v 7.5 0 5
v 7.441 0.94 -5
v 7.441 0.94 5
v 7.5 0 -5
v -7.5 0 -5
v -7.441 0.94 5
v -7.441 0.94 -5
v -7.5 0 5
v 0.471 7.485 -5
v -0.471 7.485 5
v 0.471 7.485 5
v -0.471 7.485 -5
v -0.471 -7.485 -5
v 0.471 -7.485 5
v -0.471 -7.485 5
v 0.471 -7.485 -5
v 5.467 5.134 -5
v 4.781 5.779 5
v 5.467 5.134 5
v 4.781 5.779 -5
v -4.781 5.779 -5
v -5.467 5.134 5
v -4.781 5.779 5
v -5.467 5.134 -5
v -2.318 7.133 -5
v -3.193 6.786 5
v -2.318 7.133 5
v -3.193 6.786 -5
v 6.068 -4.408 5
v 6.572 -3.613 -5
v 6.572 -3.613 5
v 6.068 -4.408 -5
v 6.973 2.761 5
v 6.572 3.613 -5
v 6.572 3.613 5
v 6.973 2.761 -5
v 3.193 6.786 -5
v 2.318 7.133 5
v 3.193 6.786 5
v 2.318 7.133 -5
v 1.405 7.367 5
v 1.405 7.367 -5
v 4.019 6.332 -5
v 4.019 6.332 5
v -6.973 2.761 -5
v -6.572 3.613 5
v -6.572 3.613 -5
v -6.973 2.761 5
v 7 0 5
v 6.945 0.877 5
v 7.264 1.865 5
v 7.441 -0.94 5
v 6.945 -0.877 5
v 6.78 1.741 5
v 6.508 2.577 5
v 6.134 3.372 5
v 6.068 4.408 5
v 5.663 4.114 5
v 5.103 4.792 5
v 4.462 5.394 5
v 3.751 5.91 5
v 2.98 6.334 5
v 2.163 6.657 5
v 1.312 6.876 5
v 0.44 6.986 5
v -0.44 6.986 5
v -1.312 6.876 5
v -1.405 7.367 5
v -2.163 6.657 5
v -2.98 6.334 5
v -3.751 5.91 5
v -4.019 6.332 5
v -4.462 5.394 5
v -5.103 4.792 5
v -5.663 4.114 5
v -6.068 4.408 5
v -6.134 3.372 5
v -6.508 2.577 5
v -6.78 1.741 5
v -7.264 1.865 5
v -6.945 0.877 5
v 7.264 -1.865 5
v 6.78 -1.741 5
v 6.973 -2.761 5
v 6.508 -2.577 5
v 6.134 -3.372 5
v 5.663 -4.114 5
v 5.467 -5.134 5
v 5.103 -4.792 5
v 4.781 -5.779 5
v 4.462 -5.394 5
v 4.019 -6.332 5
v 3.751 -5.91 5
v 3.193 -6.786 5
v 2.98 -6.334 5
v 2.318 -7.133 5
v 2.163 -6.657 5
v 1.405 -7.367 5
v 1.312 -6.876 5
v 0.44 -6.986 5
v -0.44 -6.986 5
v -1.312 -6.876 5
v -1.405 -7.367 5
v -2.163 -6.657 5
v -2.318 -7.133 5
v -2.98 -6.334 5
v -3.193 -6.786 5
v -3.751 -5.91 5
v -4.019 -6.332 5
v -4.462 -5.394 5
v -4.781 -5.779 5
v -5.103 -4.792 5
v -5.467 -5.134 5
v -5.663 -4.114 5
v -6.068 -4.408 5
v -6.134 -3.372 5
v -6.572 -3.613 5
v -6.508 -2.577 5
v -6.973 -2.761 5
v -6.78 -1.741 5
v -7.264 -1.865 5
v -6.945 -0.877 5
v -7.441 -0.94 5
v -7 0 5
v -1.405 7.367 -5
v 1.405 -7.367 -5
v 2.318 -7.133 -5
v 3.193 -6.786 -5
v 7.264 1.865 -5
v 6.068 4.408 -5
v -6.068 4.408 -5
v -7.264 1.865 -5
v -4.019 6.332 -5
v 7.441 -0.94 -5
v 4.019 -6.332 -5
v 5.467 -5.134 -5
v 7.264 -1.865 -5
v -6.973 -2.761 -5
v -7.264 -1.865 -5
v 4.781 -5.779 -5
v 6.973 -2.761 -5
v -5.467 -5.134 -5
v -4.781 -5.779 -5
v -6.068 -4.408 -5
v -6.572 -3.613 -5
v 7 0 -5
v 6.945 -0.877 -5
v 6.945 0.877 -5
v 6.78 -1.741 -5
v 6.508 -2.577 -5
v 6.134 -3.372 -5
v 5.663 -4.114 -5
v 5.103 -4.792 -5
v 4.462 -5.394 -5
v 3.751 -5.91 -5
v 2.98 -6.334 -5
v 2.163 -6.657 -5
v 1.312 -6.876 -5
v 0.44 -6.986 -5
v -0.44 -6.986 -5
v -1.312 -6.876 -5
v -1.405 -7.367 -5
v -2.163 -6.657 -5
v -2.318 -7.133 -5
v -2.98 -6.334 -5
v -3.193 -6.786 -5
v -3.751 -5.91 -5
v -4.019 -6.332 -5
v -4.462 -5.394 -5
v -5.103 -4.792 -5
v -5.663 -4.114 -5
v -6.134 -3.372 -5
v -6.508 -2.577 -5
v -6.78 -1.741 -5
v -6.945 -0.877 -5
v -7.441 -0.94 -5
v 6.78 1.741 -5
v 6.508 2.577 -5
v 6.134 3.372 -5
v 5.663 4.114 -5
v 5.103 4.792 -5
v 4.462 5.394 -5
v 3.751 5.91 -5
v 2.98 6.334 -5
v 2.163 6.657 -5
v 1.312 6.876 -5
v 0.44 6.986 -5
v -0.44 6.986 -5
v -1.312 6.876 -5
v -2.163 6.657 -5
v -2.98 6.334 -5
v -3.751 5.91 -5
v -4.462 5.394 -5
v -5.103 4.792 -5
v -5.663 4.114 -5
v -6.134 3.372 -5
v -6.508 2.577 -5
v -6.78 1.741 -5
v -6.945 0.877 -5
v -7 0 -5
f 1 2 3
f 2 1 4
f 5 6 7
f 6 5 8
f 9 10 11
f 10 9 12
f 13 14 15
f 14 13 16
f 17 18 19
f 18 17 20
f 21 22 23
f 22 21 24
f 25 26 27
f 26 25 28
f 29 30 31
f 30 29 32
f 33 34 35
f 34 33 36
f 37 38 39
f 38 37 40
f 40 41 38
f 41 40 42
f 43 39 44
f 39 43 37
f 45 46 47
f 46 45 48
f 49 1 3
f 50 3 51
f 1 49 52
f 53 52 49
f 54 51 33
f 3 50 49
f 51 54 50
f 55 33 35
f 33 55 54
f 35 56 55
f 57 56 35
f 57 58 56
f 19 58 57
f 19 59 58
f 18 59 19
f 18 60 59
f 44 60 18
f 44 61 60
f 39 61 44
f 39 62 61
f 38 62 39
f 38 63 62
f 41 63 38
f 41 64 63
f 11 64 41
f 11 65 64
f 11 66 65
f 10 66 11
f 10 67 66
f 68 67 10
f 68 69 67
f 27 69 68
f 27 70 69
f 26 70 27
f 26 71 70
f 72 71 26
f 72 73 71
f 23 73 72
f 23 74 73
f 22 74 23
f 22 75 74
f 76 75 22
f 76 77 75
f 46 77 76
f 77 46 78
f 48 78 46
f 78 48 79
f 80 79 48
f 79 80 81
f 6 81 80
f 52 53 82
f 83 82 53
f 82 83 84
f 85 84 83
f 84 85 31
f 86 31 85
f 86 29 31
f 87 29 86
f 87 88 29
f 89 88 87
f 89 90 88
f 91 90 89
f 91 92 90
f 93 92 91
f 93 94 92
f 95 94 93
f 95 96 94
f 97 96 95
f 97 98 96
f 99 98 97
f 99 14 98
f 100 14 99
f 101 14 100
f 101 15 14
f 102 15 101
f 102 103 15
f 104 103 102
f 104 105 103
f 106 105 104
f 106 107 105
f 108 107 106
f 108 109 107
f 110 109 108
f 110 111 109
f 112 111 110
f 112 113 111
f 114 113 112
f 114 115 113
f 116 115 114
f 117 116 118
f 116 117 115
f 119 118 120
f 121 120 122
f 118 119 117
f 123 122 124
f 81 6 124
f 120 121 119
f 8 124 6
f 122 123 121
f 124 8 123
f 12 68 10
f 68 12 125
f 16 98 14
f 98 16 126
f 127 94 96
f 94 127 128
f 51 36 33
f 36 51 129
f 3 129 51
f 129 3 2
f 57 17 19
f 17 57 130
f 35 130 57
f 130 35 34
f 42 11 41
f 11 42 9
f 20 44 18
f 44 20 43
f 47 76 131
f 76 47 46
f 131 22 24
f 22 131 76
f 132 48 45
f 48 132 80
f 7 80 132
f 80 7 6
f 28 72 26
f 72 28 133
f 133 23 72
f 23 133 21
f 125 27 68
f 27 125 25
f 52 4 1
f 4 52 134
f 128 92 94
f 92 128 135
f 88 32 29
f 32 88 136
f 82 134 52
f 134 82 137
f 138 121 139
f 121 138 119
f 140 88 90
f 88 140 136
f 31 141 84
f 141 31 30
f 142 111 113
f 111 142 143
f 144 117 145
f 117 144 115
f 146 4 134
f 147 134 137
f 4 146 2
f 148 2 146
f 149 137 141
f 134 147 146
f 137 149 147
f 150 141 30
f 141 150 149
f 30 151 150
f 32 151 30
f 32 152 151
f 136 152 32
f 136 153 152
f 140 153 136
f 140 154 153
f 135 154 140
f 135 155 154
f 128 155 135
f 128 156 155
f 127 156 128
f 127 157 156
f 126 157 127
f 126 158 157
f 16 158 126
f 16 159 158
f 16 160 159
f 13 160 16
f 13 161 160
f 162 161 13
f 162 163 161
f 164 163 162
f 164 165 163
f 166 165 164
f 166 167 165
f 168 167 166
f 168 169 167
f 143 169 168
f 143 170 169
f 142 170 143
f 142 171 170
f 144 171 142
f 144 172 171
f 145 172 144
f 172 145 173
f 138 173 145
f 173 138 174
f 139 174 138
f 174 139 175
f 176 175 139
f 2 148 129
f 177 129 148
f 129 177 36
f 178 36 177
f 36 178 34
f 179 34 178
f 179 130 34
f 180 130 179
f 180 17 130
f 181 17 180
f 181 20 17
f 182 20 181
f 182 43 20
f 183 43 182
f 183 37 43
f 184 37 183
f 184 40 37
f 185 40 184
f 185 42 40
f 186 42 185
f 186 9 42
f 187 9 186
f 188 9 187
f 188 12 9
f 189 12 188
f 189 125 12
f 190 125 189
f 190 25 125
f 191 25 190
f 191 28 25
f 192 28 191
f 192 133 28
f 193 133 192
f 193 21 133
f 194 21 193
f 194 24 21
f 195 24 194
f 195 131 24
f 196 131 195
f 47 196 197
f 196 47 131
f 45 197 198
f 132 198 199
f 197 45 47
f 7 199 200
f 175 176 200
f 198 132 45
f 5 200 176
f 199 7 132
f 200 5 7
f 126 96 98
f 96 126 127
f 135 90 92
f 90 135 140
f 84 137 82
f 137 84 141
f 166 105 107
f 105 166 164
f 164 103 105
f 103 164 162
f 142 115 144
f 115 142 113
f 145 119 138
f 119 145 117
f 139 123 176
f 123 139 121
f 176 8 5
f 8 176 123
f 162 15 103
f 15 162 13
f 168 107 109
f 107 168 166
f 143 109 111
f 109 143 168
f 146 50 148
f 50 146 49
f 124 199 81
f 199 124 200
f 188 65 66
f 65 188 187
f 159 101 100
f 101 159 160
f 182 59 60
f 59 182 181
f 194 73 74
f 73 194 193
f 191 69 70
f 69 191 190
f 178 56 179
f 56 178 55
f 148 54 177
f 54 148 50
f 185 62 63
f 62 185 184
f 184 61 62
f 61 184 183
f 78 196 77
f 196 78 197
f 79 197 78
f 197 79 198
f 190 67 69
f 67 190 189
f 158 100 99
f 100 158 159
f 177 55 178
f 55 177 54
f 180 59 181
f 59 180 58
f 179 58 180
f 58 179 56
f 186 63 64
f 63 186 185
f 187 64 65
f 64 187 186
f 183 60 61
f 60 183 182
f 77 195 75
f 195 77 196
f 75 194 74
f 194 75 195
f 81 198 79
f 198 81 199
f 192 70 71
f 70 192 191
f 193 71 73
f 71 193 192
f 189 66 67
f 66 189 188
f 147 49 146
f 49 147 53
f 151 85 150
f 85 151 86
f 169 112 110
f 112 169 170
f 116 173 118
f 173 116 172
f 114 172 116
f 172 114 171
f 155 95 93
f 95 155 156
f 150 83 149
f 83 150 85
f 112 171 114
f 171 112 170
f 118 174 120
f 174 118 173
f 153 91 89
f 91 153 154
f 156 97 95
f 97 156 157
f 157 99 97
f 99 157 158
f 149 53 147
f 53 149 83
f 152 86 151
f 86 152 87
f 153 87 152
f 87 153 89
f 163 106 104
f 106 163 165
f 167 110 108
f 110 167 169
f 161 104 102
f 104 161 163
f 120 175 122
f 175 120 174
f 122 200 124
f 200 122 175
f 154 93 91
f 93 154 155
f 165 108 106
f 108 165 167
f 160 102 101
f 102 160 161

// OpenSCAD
$fn = 50;


difference() {
	union() {
		translate(v = [0, 0, -5.0000000000]) {
			cylinder(h = 10, r = 7.5000000000);
		}
	}
	union() {
		translate(v = [0, 0, -100.0000000000]) {
			cylinder(h = 200, r = 7);
		}
	}
}
